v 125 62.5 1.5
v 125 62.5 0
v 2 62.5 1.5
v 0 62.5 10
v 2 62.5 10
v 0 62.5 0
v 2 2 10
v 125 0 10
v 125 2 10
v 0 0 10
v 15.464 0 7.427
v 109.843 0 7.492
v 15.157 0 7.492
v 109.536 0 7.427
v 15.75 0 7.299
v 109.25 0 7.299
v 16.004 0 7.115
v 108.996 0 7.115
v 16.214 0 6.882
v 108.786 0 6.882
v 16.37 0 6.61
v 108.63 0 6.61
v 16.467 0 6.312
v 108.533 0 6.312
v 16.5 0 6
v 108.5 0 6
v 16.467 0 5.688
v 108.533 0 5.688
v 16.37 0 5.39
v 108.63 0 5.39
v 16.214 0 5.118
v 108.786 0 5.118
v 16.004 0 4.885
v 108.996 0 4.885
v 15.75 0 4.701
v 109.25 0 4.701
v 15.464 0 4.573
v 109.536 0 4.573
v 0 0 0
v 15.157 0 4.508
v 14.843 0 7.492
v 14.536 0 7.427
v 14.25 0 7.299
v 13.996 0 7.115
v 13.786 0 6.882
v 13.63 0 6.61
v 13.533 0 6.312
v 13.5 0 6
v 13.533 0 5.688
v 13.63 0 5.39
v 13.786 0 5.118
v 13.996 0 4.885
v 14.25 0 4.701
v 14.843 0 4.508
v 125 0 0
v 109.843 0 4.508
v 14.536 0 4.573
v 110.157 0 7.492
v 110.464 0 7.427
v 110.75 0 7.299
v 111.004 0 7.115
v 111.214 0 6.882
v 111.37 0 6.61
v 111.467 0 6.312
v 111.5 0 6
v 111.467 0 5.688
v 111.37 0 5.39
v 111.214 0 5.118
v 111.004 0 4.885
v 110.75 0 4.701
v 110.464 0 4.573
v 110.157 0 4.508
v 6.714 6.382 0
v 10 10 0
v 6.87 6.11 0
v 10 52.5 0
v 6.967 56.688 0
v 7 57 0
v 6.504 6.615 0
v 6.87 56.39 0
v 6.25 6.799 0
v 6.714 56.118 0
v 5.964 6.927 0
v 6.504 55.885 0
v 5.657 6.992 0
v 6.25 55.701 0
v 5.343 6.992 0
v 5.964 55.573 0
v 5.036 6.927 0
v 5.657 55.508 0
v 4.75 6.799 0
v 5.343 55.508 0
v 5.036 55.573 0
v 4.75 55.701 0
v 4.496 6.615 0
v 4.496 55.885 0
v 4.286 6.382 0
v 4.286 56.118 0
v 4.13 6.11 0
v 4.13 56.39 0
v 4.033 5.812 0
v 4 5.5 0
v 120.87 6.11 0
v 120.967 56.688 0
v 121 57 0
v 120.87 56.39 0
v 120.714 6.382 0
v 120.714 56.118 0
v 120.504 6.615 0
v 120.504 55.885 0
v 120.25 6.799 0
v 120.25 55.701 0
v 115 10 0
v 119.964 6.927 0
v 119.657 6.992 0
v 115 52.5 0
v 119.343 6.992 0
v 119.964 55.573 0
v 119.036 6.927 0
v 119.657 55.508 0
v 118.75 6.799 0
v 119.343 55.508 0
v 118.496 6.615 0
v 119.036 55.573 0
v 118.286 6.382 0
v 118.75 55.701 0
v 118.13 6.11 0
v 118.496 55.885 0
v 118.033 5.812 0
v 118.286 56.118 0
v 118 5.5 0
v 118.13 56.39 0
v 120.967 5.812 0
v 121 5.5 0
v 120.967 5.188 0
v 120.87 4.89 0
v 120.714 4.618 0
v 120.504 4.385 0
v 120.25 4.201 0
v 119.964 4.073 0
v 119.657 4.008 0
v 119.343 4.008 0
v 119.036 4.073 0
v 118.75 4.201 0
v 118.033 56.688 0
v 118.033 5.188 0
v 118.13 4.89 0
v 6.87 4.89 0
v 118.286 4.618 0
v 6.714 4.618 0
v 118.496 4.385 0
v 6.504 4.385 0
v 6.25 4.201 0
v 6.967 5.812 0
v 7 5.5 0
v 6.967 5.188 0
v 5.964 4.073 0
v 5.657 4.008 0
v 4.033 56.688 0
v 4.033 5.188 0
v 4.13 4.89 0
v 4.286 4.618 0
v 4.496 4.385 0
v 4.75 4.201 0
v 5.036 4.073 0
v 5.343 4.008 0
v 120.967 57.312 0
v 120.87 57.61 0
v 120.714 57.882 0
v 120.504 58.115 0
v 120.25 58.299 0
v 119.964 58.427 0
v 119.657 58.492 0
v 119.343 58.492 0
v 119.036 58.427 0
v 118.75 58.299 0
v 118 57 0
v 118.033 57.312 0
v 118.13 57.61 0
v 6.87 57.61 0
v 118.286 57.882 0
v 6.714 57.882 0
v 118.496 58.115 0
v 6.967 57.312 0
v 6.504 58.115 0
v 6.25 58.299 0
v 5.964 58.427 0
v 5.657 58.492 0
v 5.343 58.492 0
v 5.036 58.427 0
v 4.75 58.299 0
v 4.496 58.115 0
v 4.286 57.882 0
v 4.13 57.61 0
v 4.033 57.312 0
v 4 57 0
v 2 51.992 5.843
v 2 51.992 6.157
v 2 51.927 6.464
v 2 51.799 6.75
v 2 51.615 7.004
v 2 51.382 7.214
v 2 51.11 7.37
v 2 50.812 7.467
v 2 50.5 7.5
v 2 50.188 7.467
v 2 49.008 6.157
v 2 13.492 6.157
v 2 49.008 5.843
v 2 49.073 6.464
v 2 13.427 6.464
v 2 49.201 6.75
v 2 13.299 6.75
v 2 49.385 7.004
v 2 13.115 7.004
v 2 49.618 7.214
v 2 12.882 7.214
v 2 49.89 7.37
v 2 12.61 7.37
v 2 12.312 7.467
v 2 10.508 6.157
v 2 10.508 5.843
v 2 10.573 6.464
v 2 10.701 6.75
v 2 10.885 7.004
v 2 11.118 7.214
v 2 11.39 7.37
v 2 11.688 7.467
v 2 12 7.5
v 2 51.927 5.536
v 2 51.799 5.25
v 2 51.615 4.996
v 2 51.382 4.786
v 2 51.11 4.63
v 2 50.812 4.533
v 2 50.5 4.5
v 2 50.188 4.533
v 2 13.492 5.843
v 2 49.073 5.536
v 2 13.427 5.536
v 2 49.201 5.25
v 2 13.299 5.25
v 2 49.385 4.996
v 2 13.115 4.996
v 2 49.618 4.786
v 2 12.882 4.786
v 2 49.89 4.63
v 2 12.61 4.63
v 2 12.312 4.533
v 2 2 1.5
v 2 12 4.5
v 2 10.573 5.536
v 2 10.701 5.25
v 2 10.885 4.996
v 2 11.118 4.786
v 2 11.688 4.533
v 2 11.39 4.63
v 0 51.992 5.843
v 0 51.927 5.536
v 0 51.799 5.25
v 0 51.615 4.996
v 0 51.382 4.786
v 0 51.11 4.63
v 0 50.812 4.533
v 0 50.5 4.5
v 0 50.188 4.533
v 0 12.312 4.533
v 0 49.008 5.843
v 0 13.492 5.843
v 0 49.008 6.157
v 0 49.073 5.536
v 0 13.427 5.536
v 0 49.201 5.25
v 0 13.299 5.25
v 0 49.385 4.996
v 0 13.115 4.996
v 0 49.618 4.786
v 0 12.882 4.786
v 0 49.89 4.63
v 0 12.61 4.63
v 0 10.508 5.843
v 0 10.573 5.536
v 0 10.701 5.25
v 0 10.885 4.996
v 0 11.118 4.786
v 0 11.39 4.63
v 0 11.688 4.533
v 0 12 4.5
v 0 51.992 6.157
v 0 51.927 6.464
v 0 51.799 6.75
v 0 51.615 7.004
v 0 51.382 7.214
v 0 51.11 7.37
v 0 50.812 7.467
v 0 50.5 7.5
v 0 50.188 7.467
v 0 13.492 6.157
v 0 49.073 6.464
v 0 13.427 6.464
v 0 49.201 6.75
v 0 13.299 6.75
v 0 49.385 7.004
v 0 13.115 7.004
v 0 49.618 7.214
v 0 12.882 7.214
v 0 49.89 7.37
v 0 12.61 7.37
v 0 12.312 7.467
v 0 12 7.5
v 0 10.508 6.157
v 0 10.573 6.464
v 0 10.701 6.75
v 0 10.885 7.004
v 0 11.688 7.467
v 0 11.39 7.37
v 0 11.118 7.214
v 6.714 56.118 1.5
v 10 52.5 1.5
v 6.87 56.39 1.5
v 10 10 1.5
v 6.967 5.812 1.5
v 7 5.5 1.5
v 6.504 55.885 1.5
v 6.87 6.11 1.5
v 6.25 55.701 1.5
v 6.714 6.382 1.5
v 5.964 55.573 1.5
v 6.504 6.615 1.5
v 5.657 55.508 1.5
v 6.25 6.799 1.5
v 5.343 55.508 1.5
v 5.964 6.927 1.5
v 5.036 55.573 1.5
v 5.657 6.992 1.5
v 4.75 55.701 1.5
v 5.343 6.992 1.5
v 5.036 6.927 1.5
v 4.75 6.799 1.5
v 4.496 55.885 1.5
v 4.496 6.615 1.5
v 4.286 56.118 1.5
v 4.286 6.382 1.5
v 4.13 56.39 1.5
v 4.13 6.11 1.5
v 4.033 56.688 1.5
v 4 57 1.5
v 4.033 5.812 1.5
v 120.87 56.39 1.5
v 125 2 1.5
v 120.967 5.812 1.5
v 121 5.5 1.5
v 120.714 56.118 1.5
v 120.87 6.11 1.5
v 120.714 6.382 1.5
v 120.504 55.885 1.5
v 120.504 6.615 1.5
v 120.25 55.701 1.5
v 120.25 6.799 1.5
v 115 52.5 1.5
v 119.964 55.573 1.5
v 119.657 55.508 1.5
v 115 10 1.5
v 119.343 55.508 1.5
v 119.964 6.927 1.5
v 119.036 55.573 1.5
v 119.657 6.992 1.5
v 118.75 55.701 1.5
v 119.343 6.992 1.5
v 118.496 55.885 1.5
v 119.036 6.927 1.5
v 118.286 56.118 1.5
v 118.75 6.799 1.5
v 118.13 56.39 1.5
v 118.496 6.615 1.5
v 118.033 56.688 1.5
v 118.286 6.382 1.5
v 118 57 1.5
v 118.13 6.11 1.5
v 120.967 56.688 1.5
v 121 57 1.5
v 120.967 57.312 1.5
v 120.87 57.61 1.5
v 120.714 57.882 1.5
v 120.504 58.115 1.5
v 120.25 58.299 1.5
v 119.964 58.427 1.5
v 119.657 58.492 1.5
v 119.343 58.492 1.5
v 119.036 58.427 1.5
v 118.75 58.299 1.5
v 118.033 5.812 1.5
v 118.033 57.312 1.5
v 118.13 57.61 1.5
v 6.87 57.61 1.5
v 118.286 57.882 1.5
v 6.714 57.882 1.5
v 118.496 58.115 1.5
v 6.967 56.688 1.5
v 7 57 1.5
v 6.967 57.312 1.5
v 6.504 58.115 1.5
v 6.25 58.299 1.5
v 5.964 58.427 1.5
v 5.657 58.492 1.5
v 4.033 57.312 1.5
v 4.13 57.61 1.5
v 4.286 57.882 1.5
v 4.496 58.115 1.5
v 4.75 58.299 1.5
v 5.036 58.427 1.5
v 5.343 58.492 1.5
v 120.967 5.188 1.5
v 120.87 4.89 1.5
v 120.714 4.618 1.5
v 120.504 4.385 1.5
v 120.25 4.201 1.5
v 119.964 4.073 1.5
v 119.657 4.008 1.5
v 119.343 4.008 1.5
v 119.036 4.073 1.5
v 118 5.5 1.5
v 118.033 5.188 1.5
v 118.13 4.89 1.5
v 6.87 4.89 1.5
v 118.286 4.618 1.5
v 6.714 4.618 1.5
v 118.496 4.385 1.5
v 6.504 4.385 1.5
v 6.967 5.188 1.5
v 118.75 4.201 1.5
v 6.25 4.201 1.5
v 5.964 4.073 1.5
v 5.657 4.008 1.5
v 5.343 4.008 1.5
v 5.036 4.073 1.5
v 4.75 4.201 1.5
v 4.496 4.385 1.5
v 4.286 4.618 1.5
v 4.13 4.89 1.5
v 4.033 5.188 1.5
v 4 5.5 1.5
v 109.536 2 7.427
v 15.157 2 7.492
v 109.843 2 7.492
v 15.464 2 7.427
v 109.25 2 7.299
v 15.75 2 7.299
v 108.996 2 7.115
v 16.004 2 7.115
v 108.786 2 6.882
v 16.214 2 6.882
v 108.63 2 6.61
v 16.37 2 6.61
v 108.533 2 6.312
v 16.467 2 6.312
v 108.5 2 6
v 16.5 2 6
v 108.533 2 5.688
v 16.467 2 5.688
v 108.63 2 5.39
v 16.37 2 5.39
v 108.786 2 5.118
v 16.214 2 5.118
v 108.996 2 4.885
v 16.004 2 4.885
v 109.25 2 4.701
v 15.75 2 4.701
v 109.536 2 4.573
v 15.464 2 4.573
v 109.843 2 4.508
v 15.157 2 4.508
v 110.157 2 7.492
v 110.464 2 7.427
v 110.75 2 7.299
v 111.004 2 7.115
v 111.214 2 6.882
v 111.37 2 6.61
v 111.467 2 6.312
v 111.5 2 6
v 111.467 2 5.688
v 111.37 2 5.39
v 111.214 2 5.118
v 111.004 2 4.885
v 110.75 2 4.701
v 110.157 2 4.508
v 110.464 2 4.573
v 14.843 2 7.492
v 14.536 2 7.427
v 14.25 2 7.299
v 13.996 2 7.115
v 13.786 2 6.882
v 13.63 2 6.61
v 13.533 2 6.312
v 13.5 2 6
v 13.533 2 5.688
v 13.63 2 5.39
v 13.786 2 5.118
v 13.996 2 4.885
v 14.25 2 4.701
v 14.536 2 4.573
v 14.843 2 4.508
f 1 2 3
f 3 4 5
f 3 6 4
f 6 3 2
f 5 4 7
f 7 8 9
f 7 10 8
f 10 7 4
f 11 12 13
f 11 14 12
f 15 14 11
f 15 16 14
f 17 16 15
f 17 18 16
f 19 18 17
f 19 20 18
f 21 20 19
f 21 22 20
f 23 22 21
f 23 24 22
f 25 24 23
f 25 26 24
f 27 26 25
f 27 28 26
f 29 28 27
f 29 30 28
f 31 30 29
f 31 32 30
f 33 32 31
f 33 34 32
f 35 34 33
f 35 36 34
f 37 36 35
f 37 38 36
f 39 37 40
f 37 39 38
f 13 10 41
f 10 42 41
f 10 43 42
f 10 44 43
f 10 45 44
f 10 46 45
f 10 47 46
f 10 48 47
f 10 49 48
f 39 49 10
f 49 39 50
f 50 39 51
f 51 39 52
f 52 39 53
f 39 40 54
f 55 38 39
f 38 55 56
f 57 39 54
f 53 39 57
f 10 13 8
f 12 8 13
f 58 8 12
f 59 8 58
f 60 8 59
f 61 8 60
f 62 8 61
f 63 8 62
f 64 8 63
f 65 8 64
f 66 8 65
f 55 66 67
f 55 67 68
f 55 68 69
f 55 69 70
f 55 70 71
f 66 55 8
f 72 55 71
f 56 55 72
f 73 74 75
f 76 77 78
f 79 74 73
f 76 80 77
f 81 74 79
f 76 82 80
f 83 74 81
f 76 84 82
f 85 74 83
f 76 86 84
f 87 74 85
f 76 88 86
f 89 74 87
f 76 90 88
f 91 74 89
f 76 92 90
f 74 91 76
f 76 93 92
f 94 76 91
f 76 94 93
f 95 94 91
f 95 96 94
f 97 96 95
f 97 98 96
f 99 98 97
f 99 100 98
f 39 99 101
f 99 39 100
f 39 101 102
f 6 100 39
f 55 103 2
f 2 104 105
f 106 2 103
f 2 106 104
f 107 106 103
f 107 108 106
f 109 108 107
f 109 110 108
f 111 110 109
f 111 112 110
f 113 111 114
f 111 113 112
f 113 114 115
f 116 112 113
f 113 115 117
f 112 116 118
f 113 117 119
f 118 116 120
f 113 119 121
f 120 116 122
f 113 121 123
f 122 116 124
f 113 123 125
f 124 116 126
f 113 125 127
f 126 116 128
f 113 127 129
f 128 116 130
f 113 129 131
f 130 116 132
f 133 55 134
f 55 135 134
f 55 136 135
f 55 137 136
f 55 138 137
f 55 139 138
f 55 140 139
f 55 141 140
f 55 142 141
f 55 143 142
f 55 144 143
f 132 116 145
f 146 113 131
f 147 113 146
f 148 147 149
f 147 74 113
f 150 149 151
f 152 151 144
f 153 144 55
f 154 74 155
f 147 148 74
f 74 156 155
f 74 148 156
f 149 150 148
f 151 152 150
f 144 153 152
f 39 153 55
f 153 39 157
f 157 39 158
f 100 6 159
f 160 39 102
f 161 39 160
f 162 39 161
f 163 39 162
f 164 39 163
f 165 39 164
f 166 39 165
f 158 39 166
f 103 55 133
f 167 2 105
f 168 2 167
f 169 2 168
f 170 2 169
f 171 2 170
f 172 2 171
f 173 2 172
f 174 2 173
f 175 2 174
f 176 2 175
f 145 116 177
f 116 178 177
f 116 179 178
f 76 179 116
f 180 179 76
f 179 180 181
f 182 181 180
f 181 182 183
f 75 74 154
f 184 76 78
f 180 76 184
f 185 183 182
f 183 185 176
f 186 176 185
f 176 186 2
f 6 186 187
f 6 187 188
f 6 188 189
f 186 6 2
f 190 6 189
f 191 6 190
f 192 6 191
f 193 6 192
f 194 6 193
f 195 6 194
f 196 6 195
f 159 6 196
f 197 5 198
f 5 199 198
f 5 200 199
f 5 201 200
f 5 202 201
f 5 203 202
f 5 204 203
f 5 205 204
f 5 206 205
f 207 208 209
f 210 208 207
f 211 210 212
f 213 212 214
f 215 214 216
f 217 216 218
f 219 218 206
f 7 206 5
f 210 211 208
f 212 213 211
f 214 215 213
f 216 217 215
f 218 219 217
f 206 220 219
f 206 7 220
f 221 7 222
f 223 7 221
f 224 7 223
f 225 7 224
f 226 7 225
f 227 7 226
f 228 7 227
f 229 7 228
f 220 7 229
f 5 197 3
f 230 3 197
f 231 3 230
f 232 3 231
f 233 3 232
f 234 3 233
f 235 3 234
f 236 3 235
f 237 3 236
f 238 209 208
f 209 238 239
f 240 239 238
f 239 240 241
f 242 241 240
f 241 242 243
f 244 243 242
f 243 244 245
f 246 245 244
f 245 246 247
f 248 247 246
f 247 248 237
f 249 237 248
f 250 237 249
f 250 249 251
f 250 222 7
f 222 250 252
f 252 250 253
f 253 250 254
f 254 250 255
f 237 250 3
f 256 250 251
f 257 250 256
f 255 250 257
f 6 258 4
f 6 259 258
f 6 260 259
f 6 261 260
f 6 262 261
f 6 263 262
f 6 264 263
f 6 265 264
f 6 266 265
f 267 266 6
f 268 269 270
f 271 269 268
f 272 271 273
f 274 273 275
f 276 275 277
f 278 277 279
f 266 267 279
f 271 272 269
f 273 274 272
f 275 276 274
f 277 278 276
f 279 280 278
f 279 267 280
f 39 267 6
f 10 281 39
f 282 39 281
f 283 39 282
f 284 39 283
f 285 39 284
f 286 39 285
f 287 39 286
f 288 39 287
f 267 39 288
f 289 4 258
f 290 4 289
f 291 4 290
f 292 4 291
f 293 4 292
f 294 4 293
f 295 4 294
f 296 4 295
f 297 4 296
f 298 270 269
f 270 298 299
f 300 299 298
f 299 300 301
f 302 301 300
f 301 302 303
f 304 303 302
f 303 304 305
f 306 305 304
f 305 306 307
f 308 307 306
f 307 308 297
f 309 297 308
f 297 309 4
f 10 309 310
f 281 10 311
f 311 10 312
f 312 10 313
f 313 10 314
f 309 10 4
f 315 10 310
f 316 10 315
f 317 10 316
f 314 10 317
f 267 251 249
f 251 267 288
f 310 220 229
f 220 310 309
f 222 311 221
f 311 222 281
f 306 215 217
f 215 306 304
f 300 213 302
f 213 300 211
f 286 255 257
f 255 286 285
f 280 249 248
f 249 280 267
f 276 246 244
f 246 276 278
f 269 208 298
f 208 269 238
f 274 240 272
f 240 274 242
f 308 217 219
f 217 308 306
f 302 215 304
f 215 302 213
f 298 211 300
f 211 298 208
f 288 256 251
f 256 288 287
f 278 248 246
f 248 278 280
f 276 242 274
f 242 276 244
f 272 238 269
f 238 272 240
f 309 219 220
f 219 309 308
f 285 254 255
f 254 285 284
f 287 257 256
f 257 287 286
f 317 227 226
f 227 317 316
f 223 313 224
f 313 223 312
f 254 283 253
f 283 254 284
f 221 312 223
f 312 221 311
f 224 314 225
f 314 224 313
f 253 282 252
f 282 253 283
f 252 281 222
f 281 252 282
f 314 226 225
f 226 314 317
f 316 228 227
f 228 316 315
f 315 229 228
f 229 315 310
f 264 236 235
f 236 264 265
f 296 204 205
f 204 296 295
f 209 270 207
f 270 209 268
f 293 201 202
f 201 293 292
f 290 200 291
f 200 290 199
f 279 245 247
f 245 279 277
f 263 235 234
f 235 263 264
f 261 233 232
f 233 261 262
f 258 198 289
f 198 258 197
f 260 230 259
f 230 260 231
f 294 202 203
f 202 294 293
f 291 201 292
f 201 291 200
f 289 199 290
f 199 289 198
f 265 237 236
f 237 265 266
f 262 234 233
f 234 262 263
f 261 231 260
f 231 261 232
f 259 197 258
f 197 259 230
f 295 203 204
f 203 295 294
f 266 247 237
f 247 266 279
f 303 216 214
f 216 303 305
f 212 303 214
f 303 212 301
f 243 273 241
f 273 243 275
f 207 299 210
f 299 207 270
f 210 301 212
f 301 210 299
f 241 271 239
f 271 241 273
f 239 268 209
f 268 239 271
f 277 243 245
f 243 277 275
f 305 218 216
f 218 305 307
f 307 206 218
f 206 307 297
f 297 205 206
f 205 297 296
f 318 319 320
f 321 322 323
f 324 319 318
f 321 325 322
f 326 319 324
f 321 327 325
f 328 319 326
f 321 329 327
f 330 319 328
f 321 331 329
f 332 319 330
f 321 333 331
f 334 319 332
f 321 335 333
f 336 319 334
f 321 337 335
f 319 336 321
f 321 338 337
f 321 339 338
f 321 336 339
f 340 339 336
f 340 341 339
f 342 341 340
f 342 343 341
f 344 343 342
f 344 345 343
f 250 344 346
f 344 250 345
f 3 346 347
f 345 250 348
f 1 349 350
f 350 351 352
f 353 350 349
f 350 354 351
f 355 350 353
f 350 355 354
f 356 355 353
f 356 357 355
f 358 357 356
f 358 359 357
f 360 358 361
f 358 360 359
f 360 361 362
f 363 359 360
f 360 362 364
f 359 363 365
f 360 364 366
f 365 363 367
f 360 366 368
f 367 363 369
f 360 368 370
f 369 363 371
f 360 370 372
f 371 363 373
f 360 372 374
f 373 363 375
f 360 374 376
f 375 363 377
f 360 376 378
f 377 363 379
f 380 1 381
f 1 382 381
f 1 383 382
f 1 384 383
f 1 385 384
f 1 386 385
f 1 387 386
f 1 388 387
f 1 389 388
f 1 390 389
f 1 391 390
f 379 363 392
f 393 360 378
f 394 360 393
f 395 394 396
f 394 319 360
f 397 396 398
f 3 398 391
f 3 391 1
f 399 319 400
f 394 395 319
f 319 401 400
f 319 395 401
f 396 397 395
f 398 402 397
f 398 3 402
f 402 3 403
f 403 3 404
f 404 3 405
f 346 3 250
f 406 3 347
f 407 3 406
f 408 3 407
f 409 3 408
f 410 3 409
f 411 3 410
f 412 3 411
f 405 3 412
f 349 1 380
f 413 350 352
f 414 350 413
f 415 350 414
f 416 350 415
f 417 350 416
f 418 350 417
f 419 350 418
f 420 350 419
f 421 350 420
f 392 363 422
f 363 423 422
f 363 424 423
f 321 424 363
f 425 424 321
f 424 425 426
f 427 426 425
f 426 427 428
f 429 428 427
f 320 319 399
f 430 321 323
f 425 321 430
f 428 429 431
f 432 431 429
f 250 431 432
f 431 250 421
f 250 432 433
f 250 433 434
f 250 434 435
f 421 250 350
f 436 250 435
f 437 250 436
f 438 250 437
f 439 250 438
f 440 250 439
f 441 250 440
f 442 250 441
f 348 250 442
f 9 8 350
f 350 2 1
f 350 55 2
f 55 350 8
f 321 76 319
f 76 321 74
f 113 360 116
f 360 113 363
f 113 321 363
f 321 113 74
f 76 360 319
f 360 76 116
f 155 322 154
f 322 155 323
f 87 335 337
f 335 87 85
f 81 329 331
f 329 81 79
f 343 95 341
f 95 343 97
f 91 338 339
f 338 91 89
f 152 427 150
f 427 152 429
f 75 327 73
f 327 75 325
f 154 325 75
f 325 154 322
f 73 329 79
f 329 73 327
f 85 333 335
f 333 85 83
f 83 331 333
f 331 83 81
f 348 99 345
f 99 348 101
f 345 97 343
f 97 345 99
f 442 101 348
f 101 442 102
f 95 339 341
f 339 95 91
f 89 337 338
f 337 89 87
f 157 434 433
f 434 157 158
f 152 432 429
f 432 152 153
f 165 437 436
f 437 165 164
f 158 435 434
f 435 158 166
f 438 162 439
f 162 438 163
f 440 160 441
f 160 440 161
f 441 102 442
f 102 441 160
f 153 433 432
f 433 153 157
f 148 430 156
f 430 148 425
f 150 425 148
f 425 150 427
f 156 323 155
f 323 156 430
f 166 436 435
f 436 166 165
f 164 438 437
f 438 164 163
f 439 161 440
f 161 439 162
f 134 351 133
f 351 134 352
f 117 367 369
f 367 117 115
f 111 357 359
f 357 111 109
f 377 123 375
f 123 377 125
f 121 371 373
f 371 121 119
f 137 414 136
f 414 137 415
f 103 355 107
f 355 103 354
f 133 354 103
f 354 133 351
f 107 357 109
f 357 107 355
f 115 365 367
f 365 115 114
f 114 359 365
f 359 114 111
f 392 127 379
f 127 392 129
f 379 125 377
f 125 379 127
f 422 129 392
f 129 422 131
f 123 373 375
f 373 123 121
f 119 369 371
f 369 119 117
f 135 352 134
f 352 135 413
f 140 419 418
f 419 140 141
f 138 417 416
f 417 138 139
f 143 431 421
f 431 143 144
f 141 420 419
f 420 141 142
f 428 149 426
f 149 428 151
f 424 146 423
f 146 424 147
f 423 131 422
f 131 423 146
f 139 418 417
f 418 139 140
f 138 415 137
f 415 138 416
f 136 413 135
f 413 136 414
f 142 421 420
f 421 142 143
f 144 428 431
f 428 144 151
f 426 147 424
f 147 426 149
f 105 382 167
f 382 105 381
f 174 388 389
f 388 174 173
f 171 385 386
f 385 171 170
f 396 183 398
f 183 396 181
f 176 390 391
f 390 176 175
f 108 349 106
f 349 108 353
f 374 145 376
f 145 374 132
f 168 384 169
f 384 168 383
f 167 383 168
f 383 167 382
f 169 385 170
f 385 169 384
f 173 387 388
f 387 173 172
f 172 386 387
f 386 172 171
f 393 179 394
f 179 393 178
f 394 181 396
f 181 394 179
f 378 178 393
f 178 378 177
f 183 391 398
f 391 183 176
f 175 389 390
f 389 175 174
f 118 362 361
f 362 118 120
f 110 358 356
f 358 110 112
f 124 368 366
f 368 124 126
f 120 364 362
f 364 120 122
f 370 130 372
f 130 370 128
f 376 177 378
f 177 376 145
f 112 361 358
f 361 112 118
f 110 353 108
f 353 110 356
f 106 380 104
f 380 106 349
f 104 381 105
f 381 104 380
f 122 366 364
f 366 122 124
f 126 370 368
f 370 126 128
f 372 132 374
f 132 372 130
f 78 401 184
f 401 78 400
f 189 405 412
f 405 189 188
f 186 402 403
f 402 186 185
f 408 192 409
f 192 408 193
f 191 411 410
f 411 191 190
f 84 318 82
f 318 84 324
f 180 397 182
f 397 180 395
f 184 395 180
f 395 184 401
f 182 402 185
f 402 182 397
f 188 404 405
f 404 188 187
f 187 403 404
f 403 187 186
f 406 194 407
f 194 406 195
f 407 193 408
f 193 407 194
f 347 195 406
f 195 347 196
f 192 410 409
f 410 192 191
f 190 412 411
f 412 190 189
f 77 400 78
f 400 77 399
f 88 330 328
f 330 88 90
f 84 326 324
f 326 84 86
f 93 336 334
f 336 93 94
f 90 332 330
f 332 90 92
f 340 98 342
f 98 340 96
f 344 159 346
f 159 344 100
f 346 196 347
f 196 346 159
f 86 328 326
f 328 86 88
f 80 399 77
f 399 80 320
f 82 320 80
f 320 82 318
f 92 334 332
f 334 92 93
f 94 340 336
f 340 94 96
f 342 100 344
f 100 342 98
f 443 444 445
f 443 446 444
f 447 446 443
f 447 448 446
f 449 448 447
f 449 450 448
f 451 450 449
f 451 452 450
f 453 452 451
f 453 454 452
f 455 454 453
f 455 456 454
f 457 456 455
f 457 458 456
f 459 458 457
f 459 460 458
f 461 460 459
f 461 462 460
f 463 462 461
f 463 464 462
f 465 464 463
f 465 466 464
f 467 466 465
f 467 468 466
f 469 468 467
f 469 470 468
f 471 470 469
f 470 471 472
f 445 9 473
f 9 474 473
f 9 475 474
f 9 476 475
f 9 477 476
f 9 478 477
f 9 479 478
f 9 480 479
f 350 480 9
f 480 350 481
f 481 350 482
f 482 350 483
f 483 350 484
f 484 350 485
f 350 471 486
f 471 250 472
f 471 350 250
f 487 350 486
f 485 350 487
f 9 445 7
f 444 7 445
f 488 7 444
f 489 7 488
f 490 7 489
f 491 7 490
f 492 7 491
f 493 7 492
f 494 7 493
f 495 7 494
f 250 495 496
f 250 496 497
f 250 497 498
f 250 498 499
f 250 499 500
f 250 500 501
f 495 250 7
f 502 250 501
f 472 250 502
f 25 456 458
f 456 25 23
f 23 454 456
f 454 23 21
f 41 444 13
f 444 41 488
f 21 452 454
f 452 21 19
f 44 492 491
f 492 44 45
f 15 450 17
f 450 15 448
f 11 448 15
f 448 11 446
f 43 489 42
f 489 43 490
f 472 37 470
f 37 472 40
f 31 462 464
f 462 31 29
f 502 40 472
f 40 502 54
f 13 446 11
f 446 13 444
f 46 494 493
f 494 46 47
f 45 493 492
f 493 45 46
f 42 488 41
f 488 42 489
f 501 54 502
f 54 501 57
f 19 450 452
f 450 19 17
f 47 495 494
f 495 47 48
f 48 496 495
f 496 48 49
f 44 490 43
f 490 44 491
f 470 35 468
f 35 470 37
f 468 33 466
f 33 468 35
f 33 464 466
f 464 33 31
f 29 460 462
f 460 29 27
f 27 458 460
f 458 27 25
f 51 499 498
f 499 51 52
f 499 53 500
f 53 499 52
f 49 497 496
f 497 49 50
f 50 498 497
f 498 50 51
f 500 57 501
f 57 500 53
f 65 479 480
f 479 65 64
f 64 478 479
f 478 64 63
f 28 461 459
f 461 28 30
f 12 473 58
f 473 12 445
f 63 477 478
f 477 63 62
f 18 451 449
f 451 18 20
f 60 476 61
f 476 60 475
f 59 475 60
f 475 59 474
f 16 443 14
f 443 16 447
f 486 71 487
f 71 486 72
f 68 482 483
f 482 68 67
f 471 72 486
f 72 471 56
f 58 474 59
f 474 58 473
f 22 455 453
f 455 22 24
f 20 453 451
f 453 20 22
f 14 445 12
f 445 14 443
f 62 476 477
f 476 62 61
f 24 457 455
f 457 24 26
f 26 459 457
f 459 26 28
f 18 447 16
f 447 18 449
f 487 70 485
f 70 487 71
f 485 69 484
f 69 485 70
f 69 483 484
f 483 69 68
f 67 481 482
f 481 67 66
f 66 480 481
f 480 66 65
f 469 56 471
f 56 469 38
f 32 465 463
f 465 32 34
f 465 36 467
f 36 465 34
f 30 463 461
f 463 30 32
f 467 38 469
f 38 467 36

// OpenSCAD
Wall=10;
Thickness=1.5;
Height=62.5;
Length=125;
$fs = 0.01;
difference () {
cube([Length,Height,Thickness]);
translate([Wall, Wall, 0]) cube([Length-Wall*2,Height-Wall*2,2]);
translate([5.5,5.5,0]) cylinder(Thickness,1.5,1.5);
translate([Length-5.5,5.5,0]) cylinder(Thickness+1,1.5,1.5);
translate([Length-5.5,Height-5.5,0]) cylinder(Thickness,1.5,1.5);
translate([5.5,Height-5.5,0]) cylinder(Thickness,1.5,1.5);
}
difference () {
    cube([Length,2,Wall]);
    #translate([15,2.5,5+1]) rotate([90,0,0]) cylinder(3,1.5,1.5);
    translate([Length-15,2.5,5+1]) rotate([90,0,0]) cylinder(3,1.5,1.5);
}
difference () {
    translate([2,0,0]) rotate([0,0,90]) cube([Height,2,Wall]);
    translate([0,12,5+1]) rotate([0,90,0]) cylinder(3,1.5,1.5);
    translate([0,Height-12,5+1]) rotate([0,90,0]) cylinder(3,1.5,1.5);
}
